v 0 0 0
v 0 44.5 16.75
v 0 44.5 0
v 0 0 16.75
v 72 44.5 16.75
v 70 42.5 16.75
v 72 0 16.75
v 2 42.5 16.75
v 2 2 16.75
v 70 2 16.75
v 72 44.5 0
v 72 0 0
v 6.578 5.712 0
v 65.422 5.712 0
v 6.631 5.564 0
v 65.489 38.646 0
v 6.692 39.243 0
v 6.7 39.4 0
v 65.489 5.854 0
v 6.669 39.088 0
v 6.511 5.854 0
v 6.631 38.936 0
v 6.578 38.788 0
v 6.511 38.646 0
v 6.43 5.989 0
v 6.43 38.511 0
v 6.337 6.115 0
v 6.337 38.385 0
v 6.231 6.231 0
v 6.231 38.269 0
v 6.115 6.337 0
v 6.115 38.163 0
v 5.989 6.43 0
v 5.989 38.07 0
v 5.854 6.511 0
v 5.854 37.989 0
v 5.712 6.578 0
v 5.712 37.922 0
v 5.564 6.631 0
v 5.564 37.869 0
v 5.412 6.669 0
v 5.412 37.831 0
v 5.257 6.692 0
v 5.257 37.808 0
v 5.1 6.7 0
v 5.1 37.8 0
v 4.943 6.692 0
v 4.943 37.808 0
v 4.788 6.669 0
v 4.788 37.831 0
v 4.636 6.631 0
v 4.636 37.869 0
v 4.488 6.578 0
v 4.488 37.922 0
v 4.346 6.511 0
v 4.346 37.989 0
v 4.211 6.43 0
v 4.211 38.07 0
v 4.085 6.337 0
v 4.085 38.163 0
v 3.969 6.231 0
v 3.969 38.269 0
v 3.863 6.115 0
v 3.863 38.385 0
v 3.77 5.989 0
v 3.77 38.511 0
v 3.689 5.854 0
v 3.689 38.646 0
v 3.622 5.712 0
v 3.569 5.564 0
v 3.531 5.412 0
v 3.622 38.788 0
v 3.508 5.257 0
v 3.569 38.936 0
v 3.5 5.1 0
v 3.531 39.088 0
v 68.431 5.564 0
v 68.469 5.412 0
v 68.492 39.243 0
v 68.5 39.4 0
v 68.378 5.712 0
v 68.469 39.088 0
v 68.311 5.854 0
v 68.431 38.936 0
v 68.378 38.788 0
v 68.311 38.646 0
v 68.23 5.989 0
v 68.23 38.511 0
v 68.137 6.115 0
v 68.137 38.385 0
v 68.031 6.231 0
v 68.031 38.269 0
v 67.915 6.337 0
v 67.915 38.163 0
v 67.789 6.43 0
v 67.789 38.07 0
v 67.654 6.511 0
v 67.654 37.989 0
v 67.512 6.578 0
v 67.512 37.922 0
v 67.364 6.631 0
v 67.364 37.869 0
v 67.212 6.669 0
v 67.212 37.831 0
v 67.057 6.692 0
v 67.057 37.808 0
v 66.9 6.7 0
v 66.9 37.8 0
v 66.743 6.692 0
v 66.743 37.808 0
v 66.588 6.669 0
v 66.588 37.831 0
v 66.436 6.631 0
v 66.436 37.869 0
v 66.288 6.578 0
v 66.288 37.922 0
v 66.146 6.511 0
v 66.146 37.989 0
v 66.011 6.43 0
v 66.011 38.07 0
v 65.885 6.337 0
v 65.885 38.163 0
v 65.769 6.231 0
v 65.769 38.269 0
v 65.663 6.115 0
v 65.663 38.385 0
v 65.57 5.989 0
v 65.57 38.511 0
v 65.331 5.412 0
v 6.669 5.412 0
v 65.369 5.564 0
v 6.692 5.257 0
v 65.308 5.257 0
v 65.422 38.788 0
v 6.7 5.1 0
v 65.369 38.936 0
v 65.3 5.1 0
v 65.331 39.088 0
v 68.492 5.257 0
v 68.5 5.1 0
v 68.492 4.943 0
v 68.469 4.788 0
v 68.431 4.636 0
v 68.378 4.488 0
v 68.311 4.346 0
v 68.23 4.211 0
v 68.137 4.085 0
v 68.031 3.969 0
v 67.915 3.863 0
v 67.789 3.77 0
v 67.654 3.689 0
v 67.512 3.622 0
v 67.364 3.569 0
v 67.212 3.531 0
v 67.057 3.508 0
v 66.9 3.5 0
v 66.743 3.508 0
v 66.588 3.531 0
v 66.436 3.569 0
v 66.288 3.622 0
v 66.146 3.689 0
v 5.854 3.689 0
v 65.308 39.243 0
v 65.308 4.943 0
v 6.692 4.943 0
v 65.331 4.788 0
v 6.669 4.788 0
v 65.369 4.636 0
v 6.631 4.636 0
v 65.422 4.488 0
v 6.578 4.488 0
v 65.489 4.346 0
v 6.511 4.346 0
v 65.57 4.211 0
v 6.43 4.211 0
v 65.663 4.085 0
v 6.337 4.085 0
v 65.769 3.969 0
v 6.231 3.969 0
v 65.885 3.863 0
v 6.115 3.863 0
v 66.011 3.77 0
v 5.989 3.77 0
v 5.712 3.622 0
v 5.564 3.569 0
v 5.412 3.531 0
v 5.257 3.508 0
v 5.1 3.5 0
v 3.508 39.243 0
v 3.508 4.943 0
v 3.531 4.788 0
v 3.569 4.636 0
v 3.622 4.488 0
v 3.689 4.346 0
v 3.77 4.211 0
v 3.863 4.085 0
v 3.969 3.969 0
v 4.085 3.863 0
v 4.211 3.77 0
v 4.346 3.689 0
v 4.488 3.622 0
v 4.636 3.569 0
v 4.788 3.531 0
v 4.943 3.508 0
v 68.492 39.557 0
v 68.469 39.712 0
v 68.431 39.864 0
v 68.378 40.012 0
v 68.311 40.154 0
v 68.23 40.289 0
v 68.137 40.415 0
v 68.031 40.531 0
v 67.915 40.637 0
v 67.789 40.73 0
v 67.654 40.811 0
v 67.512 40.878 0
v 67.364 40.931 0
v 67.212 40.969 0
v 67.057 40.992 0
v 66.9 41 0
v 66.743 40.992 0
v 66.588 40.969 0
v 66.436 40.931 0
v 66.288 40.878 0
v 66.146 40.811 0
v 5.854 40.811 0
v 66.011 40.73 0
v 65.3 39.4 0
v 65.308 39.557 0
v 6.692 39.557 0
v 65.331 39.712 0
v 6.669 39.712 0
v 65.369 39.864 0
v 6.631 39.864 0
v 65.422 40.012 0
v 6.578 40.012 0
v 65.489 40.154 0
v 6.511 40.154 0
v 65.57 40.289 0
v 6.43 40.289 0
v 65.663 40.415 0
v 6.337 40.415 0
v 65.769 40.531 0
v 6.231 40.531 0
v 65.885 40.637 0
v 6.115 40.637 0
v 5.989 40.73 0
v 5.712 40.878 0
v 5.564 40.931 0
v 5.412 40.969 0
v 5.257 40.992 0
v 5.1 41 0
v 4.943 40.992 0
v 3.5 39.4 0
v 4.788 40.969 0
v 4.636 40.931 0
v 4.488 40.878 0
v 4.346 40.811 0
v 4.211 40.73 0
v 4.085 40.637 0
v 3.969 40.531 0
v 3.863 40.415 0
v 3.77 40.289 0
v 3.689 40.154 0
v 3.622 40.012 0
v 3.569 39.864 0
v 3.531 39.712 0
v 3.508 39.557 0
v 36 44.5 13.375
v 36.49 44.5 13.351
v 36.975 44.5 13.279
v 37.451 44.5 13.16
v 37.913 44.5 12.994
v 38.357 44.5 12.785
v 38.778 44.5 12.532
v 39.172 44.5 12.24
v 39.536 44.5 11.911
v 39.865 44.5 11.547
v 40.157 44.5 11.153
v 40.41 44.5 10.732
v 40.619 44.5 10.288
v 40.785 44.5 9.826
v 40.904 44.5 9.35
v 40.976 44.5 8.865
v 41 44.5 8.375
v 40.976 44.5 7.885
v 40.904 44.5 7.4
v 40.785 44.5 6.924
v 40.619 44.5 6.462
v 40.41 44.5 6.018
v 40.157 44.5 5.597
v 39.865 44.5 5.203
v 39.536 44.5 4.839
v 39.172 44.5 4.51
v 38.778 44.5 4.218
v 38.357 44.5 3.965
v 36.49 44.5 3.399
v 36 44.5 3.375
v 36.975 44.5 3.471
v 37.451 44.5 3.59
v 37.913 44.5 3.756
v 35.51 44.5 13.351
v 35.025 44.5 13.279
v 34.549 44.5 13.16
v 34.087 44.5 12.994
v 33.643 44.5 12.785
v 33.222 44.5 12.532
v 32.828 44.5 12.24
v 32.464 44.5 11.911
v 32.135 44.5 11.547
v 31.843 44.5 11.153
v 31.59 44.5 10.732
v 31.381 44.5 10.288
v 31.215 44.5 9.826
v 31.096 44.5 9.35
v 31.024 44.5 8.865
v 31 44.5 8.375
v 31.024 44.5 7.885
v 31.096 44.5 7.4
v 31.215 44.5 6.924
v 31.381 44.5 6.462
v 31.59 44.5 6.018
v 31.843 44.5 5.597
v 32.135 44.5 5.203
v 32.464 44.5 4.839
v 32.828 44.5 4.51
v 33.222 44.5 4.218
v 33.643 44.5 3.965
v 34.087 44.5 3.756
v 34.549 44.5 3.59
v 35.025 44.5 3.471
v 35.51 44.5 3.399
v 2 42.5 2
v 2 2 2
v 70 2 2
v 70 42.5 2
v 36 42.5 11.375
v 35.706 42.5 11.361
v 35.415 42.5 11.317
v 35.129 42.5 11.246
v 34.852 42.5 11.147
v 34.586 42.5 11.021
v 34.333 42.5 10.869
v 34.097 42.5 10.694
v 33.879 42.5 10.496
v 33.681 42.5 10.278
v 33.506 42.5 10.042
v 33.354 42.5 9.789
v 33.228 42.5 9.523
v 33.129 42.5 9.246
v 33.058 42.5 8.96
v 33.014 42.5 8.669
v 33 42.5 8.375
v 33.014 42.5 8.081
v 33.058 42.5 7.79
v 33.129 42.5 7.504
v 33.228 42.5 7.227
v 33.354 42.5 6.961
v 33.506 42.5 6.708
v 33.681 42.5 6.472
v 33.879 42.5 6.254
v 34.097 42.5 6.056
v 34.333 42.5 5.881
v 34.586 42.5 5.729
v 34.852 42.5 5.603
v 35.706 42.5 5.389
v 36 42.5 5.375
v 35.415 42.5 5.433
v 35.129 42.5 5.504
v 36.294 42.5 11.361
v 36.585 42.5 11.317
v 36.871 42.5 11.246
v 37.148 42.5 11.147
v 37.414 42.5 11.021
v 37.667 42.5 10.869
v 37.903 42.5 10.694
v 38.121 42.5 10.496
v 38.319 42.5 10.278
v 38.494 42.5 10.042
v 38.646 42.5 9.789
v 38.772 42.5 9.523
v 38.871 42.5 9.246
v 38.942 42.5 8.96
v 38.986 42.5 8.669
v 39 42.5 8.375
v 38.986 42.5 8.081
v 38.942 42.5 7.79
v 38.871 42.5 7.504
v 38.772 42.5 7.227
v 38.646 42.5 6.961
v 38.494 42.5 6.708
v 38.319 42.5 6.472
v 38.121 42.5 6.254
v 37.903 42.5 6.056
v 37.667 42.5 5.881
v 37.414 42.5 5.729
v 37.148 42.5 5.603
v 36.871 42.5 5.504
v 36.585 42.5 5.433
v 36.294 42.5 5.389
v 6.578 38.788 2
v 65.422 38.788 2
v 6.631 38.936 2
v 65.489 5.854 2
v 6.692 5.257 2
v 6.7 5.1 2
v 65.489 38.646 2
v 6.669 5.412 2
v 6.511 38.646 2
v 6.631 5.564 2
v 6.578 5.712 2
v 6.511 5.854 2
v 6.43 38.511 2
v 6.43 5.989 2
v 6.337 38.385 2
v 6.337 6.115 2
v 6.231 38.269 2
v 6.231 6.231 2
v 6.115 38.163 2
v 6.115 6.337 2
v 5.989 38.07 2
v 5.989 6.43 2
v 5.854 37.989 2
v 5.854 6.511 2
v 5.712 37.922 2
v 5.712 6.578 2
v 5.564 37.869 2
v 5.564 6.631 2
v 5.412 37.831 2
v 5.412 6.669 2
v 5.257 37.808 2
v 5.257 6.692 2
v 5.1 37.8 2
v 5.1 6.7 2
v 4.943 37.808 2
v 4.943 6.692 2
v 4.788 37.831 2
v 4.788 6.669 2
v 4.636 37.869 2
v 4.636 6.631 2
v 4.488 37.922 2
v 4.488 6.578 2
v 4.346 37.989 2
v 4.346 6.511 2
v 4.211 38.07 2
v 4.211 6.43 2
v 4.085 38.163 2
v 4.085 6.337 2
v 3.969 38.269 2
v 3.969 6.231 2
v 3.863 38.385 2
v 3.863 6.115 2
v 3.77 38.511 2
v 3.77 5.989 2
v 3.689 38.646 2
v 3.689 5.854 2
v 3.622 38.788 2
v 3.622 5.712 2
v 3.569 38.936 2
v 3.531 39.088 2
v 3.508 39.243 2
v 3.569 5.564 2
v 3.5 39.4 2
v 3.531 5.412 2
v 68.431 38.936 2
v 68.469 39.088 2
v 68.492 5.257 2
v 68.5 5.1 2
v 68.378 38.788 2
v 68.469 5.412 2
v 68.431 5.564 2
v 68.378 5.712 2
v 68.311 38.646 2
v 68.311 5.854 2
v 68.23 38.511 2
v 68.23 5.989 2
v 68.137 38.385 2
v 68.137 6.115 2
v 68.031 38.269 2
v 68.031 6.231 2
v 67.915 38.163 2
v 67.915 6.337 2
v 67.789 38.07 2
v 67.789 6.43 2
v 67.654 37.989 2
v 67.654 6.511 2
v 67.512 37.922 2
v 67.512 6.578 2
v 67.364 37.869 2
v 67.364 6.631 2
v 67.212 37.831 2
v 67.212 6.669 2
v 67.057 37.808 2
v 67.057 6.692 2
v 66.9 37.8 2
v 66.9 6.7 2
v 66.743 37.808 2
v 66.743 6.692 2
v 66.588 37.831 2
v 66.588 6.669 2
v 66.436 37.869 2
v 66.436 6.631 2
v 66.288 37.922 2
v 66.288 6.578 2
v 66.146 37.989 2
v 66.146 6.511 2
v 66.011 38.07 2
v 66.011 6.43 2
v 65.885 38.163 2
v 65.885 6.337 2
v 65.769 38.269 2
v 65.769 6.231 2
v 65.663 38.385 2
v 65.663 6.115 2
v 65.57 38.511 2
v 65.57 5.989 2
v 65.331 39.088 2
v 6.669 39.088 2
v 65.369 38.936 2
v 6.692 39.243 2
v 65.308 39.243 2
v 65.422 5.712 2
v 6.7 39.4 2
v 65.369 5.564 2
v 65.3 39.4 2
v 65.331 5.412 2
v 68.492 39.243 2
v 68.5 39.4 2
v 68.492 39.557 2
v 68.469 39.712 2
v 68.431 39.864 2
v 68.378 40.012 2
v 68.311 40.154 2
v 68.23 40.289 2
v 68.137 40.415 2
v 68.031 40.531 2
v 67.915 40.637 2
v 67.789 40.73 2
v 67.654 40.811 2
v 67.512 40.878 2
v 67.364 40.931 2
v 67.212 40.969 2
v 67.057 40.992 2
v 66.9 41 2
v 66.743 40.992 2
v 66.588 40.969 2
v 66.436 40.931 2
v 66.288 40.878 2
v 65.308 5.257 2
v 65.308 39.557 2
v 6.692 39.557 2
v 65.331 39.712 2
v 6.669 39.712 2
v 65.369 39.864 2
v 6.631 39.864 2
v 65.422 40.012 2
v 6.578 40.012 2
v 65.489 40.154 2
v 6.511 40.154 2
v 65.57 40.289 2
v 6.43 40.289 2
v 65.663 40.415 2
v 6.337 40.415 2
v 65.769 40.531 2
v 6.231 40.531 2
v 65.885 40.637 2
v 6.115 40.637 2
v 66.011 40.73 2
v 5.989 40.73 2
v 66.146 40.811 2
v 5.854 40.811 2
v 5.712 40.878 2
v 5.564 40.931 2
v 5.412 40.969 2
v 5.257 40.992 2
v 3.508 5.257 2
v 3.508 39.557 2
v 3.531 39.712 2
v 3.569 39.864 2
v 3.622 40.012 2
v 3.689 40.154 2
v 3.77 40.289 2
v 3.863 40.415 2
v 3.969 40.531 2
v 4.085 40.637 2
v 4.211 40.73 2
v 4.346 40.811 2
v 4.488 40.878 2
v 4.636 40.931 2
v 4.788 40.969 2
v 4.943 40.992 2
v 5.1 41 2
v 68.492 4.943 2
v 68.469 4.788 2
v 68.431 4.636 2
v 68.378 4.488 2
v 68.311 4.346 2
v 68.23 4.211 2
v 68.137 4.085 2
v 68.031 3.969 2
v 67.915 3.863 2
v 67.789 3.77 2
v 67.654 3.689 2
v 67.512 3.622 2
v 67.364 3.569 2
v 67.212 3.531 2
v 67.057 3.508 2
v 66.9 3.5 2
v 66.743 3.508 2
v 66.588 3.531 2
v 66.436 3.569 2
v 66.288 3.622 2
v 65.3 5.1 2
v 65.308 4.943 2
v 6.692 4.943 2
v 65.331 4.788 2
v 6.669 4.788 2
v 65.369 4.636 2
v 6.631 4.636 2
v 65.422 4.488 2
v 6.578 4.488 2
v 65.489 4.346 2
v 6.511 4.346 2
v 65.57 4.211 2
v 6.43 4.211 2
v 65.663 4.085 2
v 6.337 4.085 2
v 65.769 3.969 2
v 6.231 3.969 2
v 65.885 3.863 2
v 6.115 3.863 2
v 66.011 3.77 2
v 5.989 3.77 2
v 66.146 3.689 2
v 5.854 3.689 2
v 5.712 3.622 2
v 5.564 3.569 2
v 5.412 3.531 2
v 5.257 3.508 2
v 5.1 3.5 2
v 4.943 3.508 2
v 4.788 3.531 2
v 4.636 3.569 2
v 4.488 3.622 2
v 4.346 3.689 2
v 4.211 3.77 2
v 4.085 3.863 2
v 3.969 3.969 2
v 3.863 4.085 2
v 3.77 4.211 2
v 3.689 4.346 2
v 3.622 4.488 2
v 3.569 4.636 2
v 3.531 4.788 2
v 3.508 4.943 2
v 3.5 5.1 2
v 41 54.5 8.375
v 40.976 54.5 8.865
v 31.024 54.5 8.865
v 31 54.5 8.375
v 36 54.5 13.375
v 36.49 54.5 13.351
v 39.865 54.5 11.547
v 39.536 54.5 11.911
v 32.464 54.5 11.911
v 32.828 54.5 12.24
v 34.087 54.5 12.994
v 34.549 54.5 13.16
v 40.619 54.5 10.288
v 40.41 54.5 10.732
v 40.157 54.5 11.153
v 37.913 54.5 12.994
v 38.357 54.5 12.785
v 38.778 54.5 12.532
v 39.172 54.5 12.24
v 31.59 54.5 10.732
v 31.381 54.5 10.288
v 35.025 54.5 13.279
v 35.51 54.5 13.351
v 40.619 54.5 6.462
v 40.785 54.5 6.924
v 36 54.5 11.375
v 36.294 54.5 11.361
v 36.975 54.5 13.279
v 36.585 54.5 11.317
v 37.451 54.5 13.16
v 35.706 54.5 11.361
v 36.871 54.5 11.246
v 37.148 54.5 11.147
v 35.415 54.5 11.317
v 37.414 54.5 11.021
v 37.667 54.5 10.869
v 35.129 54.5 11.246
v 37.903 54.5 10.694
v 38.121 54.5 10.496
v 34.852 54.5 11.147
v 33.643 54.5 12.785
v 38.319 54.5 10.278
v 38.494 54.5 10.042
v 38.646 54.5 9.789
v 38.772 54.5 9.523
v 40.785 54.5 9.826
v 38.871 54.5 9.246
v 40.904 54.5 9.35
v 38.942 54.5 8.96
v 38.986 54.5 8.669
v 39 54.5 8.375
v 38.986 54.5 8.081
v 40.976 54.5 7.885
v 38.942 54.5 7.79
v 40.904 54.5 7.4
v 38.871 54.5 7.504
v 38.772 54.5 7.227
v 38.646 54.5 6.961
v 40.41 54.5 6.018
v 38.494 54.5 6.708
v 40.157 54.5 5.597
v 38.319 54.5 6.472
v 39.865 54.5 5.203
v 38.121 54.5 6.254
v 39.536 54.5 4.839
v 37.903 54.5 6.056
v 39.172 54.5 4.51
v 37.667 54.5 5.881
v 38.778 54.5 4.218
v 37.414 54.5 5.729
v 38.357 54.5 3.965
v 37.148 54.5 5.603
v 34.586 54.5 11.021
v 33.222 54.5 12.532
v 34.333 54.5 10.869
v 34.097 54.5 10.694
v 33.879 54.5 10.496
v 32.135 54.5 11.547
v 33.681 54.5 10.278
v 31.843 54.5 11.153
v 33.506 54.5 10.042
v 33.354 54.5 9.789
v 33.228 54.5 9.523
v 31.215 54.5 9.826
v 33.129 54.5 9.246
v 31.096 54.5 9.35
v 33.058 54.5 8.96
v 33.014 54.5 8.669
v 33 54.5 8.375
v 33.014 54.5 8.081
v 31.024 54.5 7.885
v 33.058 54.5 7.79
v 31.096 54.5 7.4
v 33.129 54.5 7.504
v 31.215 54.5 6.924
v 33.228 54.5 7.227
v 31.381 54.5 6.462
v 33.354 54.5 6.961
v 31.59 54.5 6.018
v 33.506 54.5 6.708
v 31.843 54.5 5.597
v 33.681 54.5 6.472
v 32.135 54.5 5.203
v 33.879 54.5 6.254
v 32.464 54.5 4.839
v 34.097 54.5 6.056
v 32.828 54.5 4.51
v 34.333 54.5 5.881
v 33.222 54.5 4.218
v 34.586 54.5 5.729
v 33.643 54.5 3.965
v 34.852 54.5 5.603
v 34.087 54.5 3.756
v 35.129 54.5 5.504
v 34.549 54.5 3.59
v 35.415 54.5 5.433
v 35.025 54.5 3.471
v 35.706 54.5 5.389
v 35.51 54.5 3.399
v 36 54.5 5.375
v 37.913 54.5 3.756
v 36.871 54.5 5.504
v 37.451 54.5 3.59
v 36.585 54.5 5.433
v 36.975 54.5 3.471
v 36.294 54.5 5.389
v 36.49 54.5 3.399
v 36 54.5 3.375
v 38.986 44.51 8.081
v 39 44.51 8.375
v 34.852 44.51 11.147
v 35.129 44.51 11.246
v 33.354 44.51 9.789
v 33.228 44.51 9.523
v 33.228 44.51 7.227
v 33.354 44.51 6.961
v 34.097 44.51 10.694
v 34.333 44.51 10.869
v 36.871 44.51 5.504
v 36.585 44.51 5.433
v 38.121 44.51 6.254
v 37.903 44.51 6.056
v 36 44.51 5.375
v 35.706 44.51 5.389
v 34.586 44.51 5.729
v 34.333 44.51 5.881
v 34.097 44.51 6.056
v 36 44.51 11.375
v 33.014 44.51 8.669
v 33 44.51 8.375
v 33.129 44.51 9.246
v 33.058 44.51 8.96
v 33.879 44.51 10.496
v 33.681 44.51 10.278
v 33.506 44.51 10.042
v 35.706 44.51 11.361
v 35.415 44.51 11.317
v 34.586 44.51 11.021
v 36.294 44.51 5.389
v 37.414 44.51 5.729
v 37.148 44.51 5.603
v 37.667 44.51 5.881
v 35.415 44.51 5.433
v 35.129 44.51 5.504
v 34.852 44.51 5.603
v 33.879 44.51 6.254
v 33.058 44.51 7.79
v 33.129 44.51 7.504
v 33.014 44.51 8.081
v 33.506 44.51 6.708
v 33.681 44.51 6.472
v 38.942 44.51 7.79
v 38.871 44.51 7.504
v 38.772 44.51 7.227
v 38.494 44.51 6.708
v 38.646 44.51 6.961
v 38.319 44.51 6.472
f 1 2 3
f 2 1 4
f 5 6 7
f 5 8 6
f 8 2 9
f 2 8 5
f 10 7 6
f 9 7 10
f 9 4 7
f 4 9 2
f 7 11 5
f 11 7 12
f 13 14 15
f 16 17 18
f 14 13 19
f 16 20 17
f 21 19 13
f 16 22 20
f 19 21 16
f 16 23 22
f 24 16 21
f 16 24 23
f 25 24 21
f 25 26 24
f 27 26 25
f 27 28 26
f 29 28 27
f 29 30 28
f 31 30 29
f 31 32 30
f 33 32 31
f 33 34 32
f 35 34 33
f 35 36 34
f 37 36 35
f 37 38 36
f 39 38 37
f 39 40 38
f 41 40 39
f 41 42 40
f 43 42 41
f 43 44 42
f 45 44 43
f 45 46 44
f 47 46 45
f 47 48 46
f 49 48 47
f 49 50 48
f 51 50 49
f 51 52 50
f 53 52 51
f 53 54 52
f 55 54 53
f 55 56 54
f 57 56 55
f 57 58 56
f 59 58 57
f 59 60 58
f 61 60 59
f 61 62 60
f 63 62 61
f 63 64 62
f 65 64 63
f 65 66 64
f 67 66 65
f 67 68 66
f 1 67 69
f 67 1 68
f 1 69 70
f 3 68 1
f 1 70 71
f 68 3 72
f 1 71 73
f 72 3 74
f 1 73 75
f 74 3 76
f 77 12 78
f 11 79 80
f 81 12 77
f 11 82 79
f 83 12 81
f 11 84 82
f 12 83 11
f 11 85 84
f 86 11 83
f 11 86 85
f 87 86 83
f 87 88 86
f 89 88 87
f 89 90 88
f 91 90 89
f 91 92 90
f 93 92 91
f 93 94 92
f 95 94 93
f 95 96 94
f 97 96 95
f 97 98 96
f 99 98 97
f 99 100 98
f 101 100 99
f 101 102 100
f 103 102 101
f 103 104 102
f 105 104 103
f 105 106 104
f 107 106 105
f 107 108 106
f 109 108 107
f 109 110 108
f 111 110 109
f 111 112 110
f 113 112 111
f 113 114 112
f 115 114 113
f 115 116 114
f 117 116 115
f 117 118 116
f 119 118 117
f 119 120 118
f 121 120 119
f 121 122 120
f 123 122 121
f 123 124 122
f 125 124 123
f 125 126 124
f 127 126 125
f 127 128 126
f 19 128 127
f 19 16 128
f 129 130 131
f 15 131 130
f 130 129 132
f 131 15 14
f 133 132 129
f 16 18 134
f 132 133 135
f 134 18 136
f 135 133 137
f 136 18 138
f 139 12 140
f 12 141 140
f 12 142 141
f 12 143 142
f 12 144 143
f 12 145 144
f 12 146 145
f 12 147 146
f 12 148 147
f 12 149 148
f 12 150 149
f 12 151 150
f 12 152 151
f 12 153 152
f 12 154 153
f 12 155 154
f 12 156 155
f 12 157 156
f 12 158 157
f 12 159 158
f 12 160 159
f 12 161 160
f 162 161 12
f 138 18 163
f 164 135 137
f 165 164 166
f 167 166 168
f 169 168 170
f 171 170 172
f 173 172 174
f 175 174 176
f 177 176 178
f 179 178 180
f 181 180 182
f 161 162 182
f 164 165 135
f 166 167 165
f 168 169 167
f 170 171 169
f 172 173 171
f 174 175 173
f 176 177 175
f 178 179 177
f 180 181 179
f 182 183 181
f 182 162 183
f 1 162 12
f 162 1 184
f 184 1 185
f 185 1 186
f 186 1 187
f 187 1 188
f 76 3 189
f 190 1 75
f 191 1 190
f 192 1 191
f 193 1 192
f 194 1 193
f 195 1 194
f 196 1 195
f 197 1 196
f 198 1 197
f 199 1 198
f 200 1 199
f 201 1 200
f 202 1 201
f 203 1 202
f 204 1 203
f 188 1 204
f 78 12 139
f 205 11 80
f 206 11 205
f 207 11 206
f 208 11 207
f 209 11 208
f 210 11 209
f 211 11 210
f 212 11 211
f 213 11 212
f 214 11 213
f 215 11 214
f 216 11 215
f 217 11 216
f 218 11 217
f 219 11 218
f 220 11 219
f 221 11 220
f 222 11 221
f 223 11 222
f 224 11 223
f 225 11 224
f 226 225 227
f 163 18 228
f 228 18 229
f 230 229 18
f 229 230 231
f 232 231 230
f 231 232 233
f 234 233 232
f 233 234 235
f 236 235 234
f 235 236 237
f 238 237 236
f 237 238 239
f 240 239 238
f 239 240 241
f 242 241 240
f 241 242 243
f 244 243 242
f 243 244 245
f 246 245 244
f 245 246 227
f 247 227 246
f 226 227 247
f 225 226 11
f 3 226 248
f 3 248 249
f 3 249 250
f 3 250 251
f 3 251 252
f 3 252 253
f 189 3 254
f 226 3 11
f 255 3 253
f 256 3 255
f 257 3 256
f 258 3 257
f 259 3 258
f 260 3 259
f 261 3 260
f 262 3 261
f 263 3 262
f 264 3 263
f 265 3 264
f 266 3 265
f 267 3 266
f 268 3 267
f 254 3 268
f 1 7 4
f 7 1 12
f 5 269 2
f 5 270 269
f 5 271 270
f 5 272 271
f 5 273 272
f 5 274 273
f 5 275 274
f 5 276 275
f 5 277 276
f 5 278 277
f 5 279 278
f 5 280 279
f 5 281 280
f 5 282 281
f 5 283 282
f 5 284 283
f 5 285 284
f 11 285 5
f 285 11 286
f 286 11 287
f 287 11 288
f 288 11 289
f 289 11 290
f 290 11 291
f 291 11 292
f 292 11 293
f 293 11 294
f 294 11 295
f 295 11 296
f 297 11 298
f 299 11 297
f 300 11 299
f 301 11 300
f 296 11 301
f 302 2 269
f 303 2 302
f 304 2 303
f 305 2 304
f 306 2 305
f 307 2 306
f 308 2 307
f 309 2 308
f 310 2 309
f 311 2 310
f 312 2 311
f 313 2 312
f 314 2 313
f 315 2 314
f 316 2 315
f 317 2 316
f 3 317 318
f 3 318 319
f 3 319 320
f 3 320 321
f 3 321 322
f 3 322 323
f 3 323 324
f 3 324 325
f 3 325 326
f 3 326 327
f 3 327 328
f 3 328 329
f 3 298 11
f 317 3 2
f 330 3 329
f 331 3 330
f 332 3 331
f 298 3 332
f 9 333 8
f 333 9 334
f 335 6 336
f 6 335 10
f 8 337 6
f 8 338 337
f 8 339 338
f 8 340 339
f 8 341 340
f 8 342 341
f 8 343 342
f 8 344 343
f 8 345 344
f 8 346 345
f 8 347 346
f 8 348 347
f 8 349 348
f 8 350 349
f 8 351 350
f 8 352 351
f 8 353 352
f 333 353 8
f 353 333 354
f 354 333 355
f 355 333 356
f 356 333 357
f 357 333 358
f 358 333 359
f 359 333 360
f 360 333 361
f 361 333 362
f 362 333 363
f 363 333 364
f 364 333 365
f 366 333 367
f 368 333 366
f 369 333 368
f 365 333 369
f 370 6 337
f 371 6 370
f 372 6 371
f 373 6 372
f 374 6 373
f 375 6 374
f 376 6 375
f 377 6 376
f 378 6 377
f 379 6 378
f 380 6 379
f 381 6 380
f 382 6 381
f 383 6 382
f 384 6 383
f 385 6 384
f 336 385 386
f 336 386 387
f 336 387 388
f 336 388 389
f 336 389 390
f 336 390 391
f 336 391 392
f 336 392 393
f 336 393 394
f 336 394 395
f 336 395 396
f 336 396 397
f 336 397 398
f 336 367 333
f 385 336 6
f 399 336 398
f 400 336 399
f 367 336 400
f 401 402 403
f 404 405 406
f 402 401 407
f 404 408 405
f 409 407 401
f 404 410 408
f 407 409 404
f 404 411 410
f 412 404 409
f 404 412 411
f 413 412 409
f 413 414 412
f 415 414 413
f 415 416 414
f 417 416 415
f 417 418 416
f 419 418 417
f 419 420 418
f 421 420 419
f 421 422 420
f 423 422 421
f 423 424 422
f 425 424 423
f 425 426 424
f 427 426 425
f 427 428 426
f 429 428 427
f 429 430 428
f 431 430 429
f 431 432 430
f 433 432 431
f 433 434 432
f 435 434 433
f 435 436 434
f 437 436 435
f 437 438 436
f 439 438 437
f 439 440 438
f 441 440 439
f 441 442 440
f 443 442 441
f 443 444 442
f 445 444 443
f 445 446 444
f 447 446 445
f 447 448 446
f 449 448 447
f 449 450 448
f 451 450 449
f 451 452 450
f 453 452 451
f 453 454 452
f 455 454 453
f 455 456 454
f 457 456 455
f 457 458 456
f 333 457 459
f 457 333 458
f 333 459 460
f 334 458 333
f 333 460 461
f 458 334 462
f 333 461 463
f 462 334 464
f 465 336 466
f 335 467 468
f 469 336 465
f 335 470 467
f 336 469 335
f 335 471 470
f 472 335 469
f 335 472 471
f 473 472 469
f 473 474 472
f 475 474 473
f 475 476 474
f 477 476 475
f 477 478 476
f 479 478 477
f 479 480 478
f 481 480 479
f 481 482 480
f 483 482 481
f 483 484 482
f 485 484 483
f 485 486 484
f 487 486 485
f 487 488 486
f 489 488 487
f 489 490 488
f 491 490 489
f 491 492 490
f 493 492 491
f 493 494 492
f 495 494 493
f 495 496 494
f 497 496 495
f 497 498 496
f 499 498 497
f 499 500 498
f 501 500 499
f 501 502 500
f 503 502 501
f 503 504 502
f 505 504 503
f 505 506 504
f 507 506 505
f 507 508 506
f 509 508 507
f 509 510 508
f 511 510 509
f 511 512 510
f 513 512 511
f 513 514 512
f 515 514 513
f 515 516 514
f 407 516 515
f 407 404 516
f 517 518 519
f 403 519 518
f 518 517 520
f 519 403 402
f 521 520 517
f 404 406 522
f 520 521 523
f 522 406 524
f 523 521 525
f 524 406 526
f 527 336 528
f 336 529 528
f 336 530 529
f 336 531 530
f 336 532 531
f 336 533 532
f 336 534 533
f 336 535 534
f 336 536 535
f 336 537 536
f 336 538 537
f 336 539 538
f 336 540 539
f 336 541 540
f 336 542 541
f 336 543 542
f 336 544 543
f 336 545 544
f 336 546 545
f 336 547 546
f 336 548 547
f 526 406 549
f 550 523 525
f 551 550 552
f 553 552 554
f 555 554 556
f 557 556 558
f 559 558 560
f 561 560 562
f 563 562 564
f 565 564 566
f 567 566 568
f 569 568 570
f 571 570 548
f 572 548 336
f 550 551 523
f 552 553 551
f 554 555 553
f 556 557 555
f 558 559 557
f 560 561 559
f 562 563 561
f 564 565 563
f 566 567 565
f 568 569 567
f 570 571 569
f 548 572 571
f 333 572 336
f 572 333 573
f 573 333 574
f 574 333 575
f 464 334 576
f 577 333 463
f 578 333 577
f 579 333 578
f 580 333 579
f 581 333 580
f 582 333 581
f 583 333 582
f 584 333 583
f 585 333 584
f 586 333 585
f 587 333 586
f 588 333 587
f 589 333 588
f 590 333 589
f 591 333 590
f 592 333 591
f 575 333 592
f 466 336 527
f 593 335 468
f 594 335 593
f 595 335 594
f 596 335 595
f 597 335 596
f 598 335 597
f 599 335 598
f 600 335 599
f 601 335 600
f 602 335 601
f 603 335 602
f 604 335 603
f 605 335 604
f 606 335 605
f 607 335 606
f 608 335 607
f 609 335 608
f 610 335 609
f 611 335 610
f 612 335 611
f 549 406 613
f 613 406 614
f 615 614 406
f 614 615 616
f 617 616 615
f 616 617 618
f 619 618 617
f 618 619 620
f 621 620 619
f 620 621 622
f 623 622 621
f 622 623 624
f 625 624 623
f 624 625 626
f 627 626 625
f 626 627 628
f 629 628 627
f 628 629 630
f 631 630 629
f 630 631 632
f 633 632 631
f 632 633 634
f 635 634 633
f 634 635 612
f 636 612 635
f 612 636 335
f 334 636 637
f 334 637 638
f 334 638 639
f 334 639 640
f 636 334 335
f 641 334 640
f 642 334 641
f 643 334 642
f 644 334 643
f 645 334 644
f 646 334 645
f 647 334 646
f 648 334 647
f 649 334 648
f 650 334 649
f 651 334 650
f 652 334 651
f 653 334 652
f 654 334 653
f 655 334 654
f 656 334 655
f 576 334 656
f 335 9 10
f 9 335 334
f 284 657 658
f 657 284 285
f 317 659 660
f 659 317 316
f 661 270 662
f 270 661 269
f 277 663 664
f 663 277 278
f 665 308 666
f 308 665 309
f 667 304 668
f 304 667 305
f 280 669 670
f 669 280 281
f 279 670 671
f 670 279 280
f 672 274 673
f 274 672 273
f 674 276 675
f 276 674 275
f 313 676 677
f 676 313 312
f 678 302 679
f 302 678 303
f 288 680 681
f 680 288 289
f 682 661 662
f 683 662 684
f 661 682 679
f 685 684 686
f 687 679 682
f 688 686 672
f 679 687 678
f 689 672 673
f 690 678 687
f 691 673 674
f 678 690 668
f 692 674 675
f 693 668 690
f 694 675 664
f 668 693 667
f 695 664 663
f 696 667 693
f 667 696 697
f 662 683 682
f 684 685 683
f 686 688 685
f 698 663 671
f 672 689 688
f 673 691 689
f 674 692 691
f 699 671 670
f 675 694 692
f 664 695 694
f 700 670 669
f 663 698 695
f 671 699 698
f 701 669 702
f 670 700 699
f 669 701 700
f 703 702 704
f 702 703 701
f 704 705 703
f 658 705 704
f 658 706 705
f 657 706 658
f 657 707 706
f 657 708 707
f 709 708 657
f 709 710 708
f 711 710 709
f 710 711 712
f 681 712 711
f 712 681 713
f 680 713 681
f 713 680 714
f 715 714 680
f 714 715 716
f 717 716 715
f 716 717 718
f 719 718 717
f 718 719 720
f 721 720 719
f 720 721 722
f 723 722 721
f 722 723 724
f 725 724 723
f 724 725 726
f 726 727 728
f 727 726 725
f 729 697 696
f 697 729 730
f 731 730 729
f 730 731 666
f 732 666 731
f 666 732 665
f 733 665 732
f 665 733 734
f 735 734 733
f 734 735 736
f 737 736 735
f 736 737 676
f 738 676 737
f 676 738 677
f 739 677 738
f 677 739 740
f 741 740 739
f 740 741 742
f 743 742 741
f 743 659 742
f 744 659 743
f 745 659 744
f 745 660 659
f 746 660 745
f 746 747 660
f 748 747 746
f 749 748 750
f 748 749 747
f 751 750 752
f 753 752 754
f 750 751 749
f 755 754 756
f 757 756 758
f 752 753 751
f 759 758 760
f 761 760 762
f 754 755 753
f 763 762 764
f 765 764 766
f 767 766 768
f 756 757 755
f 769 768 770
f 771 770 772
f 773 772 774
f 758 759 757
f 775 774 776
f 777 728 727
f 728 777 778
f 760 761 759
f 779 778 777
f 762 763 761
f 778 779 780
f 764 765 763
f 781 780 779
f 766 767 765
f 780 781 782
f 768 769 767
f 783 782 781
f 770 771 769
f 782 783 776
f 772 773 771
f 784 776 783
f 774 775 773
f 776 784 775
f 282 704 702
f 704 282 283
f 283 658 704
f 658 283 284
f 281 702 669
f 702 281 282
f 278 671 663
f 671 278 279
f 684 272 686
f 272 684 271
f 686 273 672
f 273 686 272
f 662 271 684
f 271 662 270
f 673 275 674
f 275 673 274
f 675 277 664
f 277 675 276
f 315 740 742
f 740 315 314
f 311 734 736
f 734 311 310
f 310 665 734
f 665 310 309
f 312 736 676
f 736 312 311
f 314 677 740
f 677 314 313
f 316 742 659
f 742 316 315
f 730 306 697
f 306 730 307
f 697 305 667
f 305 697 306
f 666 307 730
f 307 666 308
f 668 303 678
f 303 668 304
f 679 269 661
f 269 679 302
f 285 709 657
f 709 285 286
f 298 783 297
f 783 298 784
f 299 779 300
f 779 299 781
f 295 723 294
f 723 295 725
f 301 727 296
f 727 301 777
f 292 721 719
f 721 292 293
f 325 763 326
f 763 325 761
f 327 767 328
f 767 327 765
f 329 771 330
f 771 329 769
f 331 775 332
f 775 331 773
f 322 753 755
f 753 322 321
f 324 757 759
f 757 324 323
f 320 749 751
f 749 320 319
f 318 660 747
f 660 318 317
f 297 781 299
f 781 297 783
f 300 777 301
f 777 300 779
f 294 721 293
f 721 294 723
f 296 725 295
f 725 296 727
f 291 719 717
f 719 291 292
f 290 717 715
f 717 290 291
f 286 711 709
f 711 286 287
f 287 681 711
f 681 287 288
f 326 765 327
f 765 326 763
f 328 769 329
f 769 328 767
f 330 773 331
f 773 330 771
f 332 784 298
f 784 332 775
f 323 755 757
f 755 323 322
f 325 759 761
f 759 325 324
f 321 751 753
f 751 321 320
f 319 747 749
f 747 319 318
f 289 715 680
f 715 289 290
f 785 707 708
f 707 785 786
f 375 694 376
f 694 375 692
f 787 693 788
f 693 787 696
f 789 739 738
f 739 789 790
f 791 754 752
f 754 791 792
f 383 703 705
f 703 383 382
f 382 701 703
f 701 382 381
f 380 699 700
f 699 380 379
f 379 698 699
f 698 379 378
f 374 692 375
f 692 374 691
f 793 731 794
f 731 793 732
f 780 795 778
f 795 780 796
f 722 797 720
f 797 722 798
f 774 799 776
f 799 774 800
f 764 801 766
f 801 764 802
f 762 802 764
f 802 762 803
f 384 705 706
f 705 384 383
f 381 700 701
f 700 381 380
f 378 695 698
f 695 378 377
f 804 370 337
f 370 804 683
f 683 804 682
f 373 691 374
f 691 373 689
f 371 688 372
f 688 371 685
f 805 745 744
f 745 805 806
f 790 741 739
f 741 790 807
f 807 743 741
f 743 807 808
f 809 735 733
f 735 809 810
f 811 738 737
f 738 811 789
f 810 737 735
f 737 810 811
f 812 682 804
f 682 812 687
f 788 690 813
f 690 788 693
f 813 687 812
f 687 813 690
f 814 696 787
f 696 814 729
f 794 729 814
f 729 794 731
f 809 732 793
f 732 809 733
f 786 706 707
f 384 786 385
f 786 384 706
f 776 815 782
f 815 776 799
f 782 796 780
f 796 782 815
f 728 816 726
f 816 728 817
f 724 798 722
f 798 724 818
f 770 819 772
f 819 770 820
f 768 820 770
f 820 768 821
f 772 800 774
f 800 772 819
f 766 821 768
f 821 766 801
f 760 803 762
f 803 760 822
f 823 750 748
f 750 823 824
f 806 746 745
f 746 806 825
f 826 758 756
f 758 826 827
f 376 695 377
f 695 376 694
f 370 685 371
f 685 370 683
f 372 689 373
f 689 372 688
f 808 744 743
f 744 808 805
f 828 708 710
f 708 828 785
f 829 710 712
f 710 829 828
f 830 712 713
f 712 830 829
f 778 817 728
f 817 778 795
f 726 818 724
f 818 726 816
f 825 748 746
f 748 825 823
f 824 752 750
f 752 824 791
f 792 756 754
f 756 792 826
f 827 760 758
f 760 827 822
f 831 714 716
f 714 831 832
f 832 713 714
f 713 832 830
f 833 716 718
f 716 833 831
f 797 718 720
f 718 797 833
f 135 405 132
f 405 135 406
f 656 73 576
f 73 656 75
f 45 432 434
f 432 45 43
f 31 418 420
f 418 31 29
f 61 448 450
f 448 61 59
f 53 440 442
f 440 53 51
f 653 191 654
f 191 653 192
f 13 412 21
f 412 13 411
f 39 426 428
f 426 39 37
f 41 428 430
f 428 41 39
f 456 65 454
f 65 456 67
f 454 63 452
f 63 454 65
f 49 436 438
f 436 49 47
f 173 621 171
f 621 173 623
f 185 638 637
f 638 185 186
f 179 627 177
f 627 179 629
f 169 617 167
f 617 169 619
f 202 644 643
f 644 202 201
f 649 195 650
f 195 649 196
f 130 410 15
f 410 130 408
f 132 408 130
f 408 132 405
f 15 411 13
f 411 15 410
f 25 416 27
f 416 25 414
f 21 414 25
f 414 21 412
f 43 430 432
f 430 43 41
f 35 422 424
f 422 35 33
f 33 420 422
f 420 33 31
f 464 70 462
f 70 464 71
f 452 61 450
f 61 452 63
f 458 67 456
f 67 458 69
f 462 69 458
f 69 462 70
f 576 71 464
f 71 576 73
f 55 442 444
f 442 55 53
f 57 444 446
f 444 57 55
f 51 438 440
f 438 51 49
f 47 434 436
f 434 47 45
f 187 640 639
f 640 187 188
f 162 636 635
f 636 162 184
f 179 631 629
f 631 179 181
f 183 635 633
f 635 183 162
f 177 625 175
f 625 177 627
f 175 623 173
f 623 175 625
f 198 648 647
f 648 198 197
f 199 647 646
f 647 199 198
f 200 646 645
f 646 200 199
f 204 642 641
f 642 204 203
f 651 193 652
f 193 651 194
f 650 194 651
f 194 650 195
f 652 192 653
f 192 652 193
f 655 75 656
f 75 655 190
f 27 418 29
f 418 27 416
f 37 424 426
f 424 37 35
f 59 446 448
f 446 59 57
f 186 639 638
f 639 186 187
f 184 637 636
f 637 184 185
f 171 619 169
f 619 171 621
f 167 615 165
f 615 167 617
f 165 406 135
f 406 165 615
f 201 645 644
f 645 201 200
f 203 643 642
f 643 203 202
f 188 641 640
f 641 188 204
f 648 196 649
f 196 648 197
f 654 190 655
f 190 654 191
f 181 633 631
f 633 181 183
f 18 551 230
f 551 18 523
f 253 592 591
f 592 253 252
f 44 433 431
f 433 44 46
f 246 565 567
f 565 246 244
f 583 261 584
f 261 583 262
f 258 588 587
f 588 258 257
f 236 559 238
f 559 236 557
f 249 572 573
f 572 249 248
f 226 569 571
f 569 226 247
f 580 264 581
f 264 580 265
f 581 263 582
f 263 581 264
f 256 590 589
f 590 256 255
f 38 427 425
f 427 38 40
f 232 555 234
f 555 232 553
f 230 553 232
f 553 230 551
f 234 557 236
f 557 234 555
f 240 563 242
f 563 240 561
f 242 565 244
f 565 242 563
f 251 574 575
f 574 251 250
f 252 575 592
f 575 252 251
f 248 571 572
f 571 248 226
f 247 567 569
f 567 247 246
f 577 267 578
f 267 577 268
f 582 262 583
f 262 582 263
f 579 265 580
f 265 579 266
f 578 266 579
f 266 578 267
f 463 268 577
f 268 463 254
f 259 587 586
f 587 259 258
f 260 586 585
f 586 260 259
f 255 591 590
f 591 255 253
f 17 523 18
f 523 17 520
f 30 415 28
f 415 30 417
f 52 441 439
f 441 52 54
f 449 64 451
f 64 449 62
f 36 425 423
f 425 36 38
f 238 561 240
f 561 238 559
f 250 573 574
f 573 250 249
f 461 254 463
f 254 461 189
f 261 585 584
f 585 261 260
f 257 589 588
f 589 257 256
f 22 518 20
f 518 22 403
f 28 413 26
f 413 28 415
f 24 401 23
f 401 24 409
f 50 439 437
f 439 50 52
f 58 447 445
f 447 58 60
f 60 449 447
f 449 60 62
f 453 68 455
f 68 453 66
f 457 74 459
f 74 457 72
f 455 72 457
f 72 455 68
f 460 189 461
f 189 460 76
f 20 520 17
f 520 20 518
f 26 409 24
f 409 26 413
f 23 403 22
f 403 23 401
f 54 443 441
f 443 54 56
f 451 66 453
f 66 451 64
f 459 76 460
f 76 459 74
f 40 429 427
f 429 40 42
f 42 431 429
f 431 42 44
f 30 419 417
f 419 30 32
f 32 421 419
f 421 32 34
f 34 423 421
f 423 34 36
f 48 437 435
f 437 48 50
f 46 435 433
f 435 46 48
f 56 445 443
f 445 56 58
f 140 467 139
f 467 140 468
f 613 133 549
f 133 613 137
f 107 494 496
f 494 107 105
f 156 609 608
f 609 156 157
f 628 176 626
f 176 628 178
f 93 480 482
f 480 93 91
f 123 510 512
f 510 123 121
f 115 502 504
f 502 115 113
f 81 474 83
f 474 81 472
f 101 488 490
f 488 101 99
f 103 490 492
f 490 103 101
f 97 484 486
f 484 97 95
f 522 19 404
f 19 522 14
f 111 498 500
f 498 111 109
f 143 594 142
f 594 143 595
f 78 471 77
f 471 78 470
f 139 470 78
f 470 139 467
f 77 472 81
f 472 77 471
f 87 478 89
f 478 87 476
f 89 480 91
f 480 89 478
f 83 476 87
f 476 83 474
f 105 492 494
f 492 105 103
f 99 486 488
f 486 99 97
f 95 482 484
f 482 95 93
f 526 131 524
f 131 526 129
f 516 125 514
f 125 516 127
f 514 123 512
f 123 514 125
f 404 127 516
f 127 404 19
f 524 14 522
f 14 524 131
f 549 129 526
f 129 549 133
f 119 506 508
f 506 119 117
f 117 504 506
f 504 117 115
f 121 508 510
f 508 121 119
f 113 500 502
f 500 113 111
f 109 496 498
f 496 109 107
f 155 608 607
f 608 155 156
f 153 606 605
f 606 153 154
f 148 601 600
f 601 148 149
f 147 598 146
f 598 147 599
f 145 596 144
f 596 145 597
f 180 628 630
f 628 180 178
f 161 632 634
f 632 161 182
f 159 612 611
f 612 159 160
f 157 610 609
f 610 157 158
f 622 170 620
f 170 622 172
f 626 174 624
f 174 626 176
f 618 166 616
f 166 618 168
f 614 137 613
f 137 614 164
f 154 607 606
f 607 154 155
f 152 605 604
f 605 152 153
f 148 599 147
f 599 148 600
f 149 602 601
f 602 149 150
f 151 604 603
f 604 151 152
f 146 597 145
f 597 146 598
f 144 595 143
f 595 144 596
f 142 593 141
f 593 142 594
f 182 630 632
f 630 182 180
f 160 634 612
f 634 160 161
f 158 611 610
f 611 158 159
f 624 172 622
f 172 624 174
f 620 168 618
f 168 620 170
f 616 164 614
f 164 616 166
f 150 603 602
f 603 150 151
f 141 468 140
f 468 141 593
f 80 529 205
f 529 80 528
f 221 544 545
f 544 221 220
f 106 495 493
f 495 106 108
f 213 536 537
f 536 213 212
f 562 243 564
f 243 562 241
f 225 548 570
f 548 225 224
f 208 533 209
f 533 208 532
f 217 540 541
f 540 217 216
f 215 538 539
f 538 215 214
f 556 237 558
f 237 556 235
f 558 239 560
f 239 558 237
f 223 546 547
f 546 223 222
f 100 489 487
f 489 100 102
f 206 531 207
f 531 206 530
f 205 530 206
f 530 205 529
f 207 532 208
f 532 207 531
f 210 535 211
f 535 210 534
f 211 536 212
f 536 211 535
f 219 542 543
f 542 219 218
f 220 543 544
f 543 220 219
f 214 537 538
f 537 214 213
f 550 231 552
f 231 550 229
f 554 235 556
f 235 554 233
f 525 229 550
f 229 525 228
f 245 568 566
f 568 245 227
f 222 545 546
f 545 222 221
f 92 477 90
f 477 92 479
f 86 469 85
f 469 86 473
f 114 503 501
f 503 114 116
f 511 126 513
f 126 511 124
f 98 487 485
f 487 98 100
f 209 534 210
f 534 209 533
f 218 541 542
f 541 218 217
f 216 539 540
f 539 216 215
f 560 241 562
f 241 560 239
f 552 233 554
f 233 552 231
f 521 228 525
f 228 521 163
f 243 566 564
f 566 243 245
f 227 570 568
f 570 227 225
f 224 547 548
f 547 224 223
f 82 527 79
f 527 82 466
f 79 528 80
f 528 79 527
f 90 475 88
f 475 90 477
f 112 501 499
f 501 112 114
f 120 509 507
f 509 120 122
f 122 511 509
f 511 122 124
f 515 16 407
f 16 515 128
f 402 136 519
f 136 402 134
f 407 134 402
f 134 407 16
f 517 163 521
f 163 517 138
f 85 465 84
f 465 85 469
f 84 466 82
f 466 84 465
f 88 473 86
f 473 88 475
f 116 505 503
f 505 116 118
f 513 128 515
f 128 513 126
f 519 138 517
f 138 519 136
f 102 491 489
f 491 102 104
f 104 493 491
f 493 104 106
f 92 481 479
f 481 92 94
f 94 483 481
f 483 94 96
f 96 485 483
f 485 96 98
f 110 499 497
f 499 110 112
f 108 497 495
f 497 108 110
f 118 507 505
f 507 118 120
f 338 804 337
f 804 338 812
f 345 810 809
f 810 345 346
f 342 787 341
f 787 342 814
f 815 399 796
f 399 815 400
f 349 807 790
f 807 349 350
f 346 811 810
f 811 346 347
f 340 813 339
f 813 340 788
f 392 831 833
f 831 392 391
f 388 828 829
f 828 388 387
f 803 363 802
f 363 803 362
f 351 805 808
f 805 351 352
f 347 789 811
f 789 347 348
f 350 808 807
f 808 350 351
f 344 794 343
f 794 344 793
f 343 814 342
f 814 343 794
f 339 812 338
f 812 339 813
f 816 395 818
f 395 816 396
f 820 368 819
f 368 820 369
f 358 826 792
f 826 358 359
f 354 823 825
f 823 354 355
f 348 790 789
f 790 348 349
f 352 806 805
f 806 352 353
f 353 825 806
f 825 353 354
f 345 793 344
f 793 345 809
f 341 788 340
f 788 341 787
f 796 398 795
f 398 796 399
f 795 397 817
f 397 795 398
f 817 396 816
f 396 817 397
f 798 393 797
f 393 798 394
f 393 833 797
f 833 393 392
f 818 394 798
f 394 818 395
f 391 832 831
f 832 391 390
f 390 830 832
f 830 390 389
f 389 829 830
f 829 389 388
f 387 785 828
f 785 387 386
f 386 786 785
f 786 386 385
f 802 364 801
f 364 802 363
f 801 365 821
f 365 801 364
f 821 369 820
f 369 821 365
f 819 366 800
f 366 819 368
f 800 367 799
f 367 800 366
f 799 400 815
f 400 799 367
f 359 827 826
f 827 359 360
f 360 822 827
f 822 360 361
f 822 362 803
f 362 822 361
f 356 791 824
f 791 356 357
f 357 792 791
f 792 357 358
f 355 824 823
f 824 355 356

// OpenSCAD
// LCD enclosure with open top, internal-offset corner holes,
// and side wire pipe mounted OUTSIDE the long edge

// ===== PARAMETERS =====

// measured LCD/PCB size
pcb_x = 67.5;
pcb_y = 40;
pcb_z = 14.5;

// fit tolerance for 0.6 nozzle / 0.3 layer
clearance = 0.25;   // per side

// final internal cavity
inner_x = pcb_x + clearance * 2;
inner_y = pcb_y + clearance * 2;
inner_z = pcb_z + clearance;

wall = 2;
floor = 2;

// M3 clearance hole
hole_d = 3.2;

// distance from INTERNAL PCB edge to HOLE EDGE
hole_offset = 1.5;

// side pipe
pipe_inner = 6;
pipe_wall = 2;
pipe_length = 10;

$fn = 64;


// ===== DERIVED =====
outer_x = inner_x + wall * 2;
outer_y = inner_y + wall * 2;
outer_z = inner_z + floor;

hole_r = hole_d / 2;
hole_center_offset = hole_offset + hole_r;


// ===== MODEL =====
difference() {
    union() {
        // Main box
        difference() {
            cube([outer_x, outer_y, outer_z]);

            // Hollow interior
            translate([wall, wall, floor])
                cube([inner_x, inner_y, inner_z]);
        }

        // Side pipe on OUTSIDE of long edge
        translate([
            outer_x / 2,
            outer_y + pipe_length,
            inner_z / 2 + floor / 2
        ])
        rotate([90, 0, 0])
        difference() {
            cylinder(h = pipe_length, d = pipe_inner + pipe_wall * 2);
            translate([0, 0, -0.5])
                cylinder(h = pipe_length + 1, d = pipe_inner);
        }
    }

    // Hole from pipe into box wall
    translate([
        outer_x / 2,
        outer_y + 0.01,
        inner_z / 2 + floor / 2
    ])
    rotate([90, 0, 0])
    cylinder(h = wall + 0.02, d = pipe_inner);

    // Corner holes offset from INTERNAL cavity edges by hole EDGE distance
    for (x = [wall + hole_center_offset, wall + inner_x - hole_center_offset])
    for (y = [wall + hole_center_offset, wall + inner_y - hole_center_offset])
        translate([x, y, 0])
            cylinder(h = outer_z + 1, d = hole_d);
}
